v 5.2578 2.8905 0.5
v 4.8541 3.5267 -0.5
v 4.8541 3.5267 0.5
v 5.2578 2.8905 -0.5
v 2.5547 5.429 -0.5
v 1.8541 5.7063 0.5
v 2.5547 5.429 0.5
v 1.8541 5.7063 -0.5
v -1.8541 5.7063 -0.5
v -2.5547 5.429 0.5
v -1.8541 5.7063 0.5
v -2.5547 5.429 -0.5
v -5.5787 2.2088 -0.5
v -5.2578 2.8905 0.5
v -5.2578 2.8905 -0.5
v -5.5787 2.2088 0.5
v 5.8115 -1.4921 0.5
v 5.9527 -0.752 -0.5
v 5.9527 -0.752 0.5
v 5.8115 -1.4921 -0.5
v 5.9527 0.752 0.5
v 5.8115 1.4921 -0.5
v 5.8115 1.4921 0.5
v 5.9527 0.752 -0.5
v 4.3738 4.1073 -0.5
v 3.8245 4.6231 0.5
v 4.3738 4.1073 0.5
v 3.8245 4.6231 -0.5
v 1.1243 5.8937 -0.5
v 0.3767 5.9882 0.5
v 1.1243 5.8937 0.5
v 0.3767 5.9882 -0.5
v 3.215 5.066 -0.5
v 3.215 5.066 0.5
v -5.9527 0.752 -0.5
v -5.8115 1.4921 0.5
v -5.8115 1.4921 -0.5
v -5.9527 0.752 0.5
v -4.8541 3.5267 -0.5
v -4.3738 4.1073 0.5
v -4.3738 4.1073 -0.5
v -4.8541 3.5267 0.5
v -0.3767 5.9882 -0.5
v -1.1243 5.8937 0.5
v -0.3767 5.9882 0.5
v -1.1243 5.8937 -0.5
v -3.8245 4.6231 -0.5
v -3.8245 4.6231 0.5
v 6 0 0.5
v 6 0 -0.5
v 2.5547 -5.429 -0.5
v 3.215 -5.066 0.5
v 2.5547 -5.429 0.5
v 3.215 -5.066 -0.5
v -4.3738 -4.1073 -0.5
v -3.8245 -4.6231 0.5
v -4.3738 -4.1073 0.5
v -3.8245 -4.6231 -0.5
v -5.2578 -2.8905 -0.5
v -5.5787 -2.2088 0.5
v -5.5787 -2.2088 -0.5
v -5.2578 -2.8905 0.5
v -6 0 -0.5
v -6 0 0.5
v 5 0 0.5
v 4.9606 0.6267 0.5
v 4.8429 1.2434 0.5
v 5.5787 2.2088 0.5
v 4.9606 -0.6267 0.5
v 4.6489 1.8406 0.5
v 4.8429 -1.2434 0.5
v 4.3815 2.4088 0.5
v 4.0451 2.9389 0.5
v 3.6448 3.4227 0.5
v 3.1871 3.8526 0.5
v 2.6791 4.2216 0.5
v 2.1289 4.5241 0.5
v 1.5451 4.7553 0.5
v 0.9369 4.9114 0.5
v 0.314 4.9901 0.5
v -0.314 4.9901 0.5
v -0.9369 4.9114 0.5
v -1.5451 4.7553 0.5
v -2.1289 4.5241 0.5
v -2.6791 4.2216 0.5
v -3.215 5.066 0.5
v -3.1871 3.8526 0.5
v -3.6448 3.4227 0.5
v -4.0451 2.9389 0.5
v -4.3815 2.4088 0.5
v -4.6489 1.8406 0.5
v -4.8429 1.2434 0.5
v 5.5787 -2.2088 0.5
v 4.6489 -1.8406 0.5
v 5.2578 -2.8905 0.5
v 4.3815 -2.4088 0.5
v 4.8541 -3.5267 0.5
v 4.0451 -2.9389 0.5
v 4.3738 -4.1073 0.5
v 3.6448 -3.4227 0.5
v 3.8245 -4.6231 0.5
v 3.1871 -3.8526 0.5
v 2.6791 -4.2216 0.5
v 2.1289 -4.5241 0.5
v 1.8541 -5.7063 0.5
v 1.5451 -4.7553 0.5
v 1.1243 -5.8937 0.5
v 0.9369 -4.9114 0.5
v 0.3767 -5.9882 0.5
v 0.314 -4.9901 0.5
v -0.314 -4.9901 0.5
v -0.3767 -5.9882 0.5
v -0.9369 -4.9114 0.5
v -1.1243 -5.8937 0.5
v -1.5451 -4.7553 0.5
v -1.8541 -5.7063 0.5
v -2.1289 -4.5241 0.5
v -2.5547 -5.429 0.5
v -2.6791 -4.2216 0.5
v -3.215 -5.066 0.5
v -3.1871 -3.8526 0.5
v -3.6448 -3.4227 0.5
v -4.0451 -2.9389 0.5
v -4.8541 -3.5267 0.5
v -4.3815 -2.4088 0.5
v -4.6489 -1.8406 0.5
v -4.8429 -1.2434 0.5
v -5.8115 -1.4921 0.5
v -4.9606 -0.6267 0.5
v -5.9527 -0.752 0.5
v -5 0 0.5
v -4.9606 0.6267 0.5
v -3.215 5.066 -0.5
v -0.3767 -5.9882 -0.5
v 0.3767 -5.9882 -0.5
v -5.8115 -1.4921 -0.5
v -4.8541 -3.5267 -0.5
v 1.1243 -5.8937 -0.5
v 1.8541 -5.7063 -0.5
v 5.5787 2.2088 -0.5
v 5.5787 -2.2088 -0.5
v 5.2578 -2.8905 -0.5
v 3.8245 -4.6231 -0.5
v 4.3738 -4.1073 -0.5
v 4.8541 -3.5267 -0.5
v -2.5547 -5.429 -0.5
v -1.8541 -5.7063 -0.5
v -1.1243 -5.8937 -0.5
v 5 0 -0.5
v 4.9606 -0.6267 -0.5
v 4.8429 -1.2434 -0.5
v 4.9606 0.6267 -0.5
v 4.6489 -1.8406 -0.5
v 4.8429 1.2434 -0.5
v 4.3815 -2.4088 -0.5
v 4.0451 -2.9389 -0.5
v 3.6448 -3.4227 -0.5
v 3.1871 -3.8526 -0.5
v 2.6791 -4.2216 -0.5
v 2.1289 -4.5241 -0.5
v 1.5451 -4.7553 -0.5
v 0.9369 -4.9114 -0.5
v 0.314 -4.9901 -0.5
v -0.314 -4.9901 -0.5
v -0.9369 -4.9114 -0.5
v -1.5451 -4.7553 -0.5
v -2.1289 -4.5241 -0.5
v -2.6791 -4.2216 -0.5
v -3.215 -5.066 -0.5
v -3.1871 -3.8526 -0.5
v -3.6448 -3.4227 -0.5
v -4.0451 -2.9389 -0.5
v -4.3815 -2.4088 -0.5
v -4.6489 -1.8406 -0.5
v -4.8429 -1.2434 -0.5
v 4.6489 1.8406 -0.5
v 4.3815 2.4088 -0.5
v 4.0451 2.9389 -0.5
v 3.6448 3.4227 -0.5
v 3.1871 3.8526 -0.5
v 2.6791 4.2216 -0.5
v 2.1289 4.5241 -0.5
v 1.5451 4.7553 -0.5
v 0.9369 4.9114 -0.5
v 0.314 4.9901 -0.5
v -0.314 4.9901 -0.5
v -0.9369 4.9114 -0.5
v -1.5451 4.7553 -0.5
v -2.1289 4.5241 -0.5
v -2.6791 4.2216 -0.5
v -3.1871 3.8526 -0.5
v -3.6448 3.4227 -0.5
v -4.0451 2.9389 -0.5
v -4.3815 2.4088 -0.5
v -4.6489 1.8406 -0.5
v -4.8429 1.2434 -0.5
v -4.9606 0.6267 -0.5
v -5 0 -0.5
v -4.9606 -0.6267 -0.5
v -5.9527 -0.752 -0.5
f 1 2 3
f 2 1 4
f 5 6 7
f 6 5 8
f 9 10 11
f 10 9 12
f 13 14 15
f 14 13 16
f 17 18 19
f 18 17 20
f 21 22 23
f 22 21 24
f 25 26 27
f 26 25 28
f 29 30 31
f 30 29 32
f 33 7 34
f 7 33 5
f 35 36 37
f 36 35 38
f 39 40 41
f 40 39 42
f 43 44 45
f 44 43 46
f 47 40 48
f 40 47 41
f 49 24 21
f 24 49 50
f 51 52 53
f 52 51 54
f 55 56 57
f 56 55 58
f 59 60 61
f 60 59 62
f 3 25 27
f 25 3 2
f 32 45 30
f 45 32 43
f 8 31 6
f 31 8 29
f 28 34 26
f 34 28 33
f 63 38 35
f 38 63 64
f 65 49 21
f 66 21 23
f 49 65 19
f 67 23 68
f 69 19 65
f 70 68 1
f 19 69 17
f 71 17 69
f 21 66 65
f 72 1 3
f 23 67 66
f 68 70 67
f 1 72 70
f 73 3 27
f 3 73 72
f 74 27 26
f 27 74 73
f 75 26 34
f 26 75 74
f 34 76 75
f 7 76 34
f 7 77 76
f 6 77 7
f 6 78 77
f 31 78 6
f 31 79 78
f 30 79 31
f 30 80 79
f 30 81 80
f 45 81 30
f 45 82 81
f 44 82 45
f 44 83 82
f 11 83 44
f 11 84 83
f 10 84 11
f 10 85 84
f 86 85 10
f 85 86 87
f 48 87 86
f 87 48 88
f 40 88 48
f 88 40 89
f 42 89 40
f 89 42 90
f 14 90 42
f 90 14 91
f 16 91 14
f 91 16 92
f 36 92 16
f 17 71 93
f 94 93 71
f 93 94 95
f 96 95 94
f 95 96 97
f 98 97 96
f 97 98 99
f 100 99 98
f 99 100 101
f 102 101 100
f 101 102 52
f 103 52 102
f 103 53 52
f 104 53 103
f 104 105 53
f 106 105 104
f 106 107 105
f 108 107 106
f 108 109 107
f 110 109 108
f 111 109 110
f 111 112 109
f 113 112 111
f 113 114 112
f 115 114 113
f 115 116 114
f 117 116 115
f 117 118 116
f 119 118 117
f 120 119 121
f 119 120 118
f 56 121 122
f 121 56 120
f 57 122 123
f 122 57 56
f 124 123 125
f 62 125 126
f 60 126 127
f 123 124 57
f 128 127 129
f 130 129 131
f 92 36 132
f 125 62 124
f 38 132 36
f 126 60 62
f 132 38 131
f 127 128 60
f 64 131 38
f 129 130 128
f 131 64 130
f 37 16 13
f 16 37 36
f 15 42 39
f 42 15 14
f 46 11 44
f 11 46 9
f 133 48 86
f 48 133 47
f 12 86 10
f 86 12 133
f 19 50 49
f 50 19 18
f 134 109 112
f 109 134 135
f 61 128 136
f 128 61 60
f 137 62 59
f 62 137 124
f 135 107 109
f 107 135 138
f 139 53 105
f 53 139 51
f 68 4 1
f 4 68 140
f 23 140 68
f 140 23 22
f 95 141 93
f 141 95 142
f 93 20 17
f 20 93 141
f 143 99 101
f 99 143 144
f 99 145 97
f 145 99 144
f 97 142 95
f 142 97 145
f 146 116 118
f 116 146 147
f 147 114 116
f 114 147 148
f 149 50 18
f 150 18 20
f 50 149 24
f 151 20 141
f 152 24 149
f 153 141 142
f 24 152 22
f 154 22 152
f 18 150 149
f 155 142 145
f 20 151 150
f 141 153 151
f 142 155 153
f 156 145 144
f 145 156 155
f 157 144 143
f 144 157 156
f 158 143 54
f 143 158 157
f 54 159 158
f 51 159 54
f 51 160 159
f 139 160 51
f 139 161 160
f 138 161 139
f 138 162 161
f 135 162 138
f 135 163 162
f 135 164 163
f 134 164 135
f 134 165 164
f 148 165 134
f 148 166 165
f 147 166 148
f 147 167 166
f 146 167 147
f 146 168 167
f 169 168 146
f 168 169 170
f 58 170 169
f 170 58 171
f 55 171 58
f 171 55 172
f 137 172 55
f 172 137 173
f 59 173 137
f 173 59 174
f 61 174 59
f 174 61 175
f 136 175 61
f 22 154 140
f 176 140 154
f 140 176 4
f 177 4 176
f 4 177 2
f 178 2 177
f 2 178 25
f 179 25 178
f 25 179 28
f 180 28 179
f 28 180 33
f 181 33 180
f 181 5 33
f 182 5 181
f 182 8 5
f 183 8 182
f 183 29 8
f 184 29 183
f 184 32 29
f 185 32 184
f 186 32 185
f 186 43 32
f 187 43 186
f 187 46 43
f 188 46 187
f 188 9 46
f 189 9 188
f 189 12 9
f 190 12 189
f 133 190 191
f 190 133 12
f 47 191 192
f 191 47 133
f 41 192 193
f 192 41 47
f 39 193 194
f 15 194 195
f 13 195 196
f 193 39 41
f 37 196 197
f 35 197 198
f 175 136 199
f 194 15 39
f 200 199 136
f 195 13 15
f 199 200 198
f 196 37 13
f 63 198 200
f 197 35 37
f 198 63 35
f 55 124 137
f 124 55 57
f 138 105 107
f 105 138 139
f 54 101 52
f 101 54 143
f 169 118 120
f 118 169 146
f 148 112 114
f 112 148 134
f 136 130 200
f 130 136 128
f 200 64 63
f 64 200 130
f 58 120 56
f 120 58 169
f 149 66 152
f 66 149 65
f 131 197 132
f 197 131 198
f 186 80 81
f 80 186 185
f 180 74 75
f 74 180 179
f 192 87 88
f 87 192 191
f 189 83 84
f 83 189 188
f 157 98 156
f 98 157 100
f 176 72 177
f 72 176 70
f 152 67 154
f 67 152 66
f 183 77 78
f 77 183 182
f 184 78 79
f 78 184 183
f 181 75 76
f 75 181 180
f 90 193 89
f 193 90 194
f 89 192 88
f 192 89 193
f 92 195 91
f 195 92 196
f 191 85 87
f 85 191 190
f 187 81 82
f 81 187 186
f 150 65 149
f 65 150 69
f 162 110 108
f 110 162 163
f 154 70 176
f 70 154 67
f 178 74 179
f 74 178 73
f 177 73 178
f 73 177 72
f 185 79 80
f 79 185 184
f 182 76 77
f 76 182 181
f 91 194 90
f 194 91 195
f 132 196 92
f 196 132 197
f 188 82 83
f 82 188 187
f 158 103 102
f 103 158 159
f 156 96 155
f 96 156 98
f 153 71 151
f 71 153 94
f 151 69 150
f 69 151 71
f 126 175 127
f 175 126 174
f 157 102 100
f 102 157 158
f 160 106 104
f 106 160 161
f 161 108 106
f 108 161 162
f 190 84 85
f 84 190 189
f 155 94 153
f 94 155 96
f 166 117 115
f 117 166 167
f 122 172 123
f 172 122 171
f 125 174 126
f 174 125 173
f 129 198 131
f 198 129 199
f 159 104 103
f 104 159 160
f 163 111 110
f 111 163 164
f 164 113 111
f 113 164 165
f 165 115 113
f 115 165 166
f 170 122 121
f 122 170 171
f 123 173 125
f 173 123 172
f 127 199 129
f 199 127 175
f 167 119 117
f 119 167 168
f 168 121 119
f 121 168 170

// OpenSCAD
$fn = 50;


difference() {
	union() {
		translate(v = [0, 0, -0.5000000000]) {
			cylinder(h = 1, r = 6.0000000000);
		}
	}
	union() {
		translate(v = [0, 0, -100.0000000000]) {
			cylinder(h = 200, r = 5);
		}
	}
}
